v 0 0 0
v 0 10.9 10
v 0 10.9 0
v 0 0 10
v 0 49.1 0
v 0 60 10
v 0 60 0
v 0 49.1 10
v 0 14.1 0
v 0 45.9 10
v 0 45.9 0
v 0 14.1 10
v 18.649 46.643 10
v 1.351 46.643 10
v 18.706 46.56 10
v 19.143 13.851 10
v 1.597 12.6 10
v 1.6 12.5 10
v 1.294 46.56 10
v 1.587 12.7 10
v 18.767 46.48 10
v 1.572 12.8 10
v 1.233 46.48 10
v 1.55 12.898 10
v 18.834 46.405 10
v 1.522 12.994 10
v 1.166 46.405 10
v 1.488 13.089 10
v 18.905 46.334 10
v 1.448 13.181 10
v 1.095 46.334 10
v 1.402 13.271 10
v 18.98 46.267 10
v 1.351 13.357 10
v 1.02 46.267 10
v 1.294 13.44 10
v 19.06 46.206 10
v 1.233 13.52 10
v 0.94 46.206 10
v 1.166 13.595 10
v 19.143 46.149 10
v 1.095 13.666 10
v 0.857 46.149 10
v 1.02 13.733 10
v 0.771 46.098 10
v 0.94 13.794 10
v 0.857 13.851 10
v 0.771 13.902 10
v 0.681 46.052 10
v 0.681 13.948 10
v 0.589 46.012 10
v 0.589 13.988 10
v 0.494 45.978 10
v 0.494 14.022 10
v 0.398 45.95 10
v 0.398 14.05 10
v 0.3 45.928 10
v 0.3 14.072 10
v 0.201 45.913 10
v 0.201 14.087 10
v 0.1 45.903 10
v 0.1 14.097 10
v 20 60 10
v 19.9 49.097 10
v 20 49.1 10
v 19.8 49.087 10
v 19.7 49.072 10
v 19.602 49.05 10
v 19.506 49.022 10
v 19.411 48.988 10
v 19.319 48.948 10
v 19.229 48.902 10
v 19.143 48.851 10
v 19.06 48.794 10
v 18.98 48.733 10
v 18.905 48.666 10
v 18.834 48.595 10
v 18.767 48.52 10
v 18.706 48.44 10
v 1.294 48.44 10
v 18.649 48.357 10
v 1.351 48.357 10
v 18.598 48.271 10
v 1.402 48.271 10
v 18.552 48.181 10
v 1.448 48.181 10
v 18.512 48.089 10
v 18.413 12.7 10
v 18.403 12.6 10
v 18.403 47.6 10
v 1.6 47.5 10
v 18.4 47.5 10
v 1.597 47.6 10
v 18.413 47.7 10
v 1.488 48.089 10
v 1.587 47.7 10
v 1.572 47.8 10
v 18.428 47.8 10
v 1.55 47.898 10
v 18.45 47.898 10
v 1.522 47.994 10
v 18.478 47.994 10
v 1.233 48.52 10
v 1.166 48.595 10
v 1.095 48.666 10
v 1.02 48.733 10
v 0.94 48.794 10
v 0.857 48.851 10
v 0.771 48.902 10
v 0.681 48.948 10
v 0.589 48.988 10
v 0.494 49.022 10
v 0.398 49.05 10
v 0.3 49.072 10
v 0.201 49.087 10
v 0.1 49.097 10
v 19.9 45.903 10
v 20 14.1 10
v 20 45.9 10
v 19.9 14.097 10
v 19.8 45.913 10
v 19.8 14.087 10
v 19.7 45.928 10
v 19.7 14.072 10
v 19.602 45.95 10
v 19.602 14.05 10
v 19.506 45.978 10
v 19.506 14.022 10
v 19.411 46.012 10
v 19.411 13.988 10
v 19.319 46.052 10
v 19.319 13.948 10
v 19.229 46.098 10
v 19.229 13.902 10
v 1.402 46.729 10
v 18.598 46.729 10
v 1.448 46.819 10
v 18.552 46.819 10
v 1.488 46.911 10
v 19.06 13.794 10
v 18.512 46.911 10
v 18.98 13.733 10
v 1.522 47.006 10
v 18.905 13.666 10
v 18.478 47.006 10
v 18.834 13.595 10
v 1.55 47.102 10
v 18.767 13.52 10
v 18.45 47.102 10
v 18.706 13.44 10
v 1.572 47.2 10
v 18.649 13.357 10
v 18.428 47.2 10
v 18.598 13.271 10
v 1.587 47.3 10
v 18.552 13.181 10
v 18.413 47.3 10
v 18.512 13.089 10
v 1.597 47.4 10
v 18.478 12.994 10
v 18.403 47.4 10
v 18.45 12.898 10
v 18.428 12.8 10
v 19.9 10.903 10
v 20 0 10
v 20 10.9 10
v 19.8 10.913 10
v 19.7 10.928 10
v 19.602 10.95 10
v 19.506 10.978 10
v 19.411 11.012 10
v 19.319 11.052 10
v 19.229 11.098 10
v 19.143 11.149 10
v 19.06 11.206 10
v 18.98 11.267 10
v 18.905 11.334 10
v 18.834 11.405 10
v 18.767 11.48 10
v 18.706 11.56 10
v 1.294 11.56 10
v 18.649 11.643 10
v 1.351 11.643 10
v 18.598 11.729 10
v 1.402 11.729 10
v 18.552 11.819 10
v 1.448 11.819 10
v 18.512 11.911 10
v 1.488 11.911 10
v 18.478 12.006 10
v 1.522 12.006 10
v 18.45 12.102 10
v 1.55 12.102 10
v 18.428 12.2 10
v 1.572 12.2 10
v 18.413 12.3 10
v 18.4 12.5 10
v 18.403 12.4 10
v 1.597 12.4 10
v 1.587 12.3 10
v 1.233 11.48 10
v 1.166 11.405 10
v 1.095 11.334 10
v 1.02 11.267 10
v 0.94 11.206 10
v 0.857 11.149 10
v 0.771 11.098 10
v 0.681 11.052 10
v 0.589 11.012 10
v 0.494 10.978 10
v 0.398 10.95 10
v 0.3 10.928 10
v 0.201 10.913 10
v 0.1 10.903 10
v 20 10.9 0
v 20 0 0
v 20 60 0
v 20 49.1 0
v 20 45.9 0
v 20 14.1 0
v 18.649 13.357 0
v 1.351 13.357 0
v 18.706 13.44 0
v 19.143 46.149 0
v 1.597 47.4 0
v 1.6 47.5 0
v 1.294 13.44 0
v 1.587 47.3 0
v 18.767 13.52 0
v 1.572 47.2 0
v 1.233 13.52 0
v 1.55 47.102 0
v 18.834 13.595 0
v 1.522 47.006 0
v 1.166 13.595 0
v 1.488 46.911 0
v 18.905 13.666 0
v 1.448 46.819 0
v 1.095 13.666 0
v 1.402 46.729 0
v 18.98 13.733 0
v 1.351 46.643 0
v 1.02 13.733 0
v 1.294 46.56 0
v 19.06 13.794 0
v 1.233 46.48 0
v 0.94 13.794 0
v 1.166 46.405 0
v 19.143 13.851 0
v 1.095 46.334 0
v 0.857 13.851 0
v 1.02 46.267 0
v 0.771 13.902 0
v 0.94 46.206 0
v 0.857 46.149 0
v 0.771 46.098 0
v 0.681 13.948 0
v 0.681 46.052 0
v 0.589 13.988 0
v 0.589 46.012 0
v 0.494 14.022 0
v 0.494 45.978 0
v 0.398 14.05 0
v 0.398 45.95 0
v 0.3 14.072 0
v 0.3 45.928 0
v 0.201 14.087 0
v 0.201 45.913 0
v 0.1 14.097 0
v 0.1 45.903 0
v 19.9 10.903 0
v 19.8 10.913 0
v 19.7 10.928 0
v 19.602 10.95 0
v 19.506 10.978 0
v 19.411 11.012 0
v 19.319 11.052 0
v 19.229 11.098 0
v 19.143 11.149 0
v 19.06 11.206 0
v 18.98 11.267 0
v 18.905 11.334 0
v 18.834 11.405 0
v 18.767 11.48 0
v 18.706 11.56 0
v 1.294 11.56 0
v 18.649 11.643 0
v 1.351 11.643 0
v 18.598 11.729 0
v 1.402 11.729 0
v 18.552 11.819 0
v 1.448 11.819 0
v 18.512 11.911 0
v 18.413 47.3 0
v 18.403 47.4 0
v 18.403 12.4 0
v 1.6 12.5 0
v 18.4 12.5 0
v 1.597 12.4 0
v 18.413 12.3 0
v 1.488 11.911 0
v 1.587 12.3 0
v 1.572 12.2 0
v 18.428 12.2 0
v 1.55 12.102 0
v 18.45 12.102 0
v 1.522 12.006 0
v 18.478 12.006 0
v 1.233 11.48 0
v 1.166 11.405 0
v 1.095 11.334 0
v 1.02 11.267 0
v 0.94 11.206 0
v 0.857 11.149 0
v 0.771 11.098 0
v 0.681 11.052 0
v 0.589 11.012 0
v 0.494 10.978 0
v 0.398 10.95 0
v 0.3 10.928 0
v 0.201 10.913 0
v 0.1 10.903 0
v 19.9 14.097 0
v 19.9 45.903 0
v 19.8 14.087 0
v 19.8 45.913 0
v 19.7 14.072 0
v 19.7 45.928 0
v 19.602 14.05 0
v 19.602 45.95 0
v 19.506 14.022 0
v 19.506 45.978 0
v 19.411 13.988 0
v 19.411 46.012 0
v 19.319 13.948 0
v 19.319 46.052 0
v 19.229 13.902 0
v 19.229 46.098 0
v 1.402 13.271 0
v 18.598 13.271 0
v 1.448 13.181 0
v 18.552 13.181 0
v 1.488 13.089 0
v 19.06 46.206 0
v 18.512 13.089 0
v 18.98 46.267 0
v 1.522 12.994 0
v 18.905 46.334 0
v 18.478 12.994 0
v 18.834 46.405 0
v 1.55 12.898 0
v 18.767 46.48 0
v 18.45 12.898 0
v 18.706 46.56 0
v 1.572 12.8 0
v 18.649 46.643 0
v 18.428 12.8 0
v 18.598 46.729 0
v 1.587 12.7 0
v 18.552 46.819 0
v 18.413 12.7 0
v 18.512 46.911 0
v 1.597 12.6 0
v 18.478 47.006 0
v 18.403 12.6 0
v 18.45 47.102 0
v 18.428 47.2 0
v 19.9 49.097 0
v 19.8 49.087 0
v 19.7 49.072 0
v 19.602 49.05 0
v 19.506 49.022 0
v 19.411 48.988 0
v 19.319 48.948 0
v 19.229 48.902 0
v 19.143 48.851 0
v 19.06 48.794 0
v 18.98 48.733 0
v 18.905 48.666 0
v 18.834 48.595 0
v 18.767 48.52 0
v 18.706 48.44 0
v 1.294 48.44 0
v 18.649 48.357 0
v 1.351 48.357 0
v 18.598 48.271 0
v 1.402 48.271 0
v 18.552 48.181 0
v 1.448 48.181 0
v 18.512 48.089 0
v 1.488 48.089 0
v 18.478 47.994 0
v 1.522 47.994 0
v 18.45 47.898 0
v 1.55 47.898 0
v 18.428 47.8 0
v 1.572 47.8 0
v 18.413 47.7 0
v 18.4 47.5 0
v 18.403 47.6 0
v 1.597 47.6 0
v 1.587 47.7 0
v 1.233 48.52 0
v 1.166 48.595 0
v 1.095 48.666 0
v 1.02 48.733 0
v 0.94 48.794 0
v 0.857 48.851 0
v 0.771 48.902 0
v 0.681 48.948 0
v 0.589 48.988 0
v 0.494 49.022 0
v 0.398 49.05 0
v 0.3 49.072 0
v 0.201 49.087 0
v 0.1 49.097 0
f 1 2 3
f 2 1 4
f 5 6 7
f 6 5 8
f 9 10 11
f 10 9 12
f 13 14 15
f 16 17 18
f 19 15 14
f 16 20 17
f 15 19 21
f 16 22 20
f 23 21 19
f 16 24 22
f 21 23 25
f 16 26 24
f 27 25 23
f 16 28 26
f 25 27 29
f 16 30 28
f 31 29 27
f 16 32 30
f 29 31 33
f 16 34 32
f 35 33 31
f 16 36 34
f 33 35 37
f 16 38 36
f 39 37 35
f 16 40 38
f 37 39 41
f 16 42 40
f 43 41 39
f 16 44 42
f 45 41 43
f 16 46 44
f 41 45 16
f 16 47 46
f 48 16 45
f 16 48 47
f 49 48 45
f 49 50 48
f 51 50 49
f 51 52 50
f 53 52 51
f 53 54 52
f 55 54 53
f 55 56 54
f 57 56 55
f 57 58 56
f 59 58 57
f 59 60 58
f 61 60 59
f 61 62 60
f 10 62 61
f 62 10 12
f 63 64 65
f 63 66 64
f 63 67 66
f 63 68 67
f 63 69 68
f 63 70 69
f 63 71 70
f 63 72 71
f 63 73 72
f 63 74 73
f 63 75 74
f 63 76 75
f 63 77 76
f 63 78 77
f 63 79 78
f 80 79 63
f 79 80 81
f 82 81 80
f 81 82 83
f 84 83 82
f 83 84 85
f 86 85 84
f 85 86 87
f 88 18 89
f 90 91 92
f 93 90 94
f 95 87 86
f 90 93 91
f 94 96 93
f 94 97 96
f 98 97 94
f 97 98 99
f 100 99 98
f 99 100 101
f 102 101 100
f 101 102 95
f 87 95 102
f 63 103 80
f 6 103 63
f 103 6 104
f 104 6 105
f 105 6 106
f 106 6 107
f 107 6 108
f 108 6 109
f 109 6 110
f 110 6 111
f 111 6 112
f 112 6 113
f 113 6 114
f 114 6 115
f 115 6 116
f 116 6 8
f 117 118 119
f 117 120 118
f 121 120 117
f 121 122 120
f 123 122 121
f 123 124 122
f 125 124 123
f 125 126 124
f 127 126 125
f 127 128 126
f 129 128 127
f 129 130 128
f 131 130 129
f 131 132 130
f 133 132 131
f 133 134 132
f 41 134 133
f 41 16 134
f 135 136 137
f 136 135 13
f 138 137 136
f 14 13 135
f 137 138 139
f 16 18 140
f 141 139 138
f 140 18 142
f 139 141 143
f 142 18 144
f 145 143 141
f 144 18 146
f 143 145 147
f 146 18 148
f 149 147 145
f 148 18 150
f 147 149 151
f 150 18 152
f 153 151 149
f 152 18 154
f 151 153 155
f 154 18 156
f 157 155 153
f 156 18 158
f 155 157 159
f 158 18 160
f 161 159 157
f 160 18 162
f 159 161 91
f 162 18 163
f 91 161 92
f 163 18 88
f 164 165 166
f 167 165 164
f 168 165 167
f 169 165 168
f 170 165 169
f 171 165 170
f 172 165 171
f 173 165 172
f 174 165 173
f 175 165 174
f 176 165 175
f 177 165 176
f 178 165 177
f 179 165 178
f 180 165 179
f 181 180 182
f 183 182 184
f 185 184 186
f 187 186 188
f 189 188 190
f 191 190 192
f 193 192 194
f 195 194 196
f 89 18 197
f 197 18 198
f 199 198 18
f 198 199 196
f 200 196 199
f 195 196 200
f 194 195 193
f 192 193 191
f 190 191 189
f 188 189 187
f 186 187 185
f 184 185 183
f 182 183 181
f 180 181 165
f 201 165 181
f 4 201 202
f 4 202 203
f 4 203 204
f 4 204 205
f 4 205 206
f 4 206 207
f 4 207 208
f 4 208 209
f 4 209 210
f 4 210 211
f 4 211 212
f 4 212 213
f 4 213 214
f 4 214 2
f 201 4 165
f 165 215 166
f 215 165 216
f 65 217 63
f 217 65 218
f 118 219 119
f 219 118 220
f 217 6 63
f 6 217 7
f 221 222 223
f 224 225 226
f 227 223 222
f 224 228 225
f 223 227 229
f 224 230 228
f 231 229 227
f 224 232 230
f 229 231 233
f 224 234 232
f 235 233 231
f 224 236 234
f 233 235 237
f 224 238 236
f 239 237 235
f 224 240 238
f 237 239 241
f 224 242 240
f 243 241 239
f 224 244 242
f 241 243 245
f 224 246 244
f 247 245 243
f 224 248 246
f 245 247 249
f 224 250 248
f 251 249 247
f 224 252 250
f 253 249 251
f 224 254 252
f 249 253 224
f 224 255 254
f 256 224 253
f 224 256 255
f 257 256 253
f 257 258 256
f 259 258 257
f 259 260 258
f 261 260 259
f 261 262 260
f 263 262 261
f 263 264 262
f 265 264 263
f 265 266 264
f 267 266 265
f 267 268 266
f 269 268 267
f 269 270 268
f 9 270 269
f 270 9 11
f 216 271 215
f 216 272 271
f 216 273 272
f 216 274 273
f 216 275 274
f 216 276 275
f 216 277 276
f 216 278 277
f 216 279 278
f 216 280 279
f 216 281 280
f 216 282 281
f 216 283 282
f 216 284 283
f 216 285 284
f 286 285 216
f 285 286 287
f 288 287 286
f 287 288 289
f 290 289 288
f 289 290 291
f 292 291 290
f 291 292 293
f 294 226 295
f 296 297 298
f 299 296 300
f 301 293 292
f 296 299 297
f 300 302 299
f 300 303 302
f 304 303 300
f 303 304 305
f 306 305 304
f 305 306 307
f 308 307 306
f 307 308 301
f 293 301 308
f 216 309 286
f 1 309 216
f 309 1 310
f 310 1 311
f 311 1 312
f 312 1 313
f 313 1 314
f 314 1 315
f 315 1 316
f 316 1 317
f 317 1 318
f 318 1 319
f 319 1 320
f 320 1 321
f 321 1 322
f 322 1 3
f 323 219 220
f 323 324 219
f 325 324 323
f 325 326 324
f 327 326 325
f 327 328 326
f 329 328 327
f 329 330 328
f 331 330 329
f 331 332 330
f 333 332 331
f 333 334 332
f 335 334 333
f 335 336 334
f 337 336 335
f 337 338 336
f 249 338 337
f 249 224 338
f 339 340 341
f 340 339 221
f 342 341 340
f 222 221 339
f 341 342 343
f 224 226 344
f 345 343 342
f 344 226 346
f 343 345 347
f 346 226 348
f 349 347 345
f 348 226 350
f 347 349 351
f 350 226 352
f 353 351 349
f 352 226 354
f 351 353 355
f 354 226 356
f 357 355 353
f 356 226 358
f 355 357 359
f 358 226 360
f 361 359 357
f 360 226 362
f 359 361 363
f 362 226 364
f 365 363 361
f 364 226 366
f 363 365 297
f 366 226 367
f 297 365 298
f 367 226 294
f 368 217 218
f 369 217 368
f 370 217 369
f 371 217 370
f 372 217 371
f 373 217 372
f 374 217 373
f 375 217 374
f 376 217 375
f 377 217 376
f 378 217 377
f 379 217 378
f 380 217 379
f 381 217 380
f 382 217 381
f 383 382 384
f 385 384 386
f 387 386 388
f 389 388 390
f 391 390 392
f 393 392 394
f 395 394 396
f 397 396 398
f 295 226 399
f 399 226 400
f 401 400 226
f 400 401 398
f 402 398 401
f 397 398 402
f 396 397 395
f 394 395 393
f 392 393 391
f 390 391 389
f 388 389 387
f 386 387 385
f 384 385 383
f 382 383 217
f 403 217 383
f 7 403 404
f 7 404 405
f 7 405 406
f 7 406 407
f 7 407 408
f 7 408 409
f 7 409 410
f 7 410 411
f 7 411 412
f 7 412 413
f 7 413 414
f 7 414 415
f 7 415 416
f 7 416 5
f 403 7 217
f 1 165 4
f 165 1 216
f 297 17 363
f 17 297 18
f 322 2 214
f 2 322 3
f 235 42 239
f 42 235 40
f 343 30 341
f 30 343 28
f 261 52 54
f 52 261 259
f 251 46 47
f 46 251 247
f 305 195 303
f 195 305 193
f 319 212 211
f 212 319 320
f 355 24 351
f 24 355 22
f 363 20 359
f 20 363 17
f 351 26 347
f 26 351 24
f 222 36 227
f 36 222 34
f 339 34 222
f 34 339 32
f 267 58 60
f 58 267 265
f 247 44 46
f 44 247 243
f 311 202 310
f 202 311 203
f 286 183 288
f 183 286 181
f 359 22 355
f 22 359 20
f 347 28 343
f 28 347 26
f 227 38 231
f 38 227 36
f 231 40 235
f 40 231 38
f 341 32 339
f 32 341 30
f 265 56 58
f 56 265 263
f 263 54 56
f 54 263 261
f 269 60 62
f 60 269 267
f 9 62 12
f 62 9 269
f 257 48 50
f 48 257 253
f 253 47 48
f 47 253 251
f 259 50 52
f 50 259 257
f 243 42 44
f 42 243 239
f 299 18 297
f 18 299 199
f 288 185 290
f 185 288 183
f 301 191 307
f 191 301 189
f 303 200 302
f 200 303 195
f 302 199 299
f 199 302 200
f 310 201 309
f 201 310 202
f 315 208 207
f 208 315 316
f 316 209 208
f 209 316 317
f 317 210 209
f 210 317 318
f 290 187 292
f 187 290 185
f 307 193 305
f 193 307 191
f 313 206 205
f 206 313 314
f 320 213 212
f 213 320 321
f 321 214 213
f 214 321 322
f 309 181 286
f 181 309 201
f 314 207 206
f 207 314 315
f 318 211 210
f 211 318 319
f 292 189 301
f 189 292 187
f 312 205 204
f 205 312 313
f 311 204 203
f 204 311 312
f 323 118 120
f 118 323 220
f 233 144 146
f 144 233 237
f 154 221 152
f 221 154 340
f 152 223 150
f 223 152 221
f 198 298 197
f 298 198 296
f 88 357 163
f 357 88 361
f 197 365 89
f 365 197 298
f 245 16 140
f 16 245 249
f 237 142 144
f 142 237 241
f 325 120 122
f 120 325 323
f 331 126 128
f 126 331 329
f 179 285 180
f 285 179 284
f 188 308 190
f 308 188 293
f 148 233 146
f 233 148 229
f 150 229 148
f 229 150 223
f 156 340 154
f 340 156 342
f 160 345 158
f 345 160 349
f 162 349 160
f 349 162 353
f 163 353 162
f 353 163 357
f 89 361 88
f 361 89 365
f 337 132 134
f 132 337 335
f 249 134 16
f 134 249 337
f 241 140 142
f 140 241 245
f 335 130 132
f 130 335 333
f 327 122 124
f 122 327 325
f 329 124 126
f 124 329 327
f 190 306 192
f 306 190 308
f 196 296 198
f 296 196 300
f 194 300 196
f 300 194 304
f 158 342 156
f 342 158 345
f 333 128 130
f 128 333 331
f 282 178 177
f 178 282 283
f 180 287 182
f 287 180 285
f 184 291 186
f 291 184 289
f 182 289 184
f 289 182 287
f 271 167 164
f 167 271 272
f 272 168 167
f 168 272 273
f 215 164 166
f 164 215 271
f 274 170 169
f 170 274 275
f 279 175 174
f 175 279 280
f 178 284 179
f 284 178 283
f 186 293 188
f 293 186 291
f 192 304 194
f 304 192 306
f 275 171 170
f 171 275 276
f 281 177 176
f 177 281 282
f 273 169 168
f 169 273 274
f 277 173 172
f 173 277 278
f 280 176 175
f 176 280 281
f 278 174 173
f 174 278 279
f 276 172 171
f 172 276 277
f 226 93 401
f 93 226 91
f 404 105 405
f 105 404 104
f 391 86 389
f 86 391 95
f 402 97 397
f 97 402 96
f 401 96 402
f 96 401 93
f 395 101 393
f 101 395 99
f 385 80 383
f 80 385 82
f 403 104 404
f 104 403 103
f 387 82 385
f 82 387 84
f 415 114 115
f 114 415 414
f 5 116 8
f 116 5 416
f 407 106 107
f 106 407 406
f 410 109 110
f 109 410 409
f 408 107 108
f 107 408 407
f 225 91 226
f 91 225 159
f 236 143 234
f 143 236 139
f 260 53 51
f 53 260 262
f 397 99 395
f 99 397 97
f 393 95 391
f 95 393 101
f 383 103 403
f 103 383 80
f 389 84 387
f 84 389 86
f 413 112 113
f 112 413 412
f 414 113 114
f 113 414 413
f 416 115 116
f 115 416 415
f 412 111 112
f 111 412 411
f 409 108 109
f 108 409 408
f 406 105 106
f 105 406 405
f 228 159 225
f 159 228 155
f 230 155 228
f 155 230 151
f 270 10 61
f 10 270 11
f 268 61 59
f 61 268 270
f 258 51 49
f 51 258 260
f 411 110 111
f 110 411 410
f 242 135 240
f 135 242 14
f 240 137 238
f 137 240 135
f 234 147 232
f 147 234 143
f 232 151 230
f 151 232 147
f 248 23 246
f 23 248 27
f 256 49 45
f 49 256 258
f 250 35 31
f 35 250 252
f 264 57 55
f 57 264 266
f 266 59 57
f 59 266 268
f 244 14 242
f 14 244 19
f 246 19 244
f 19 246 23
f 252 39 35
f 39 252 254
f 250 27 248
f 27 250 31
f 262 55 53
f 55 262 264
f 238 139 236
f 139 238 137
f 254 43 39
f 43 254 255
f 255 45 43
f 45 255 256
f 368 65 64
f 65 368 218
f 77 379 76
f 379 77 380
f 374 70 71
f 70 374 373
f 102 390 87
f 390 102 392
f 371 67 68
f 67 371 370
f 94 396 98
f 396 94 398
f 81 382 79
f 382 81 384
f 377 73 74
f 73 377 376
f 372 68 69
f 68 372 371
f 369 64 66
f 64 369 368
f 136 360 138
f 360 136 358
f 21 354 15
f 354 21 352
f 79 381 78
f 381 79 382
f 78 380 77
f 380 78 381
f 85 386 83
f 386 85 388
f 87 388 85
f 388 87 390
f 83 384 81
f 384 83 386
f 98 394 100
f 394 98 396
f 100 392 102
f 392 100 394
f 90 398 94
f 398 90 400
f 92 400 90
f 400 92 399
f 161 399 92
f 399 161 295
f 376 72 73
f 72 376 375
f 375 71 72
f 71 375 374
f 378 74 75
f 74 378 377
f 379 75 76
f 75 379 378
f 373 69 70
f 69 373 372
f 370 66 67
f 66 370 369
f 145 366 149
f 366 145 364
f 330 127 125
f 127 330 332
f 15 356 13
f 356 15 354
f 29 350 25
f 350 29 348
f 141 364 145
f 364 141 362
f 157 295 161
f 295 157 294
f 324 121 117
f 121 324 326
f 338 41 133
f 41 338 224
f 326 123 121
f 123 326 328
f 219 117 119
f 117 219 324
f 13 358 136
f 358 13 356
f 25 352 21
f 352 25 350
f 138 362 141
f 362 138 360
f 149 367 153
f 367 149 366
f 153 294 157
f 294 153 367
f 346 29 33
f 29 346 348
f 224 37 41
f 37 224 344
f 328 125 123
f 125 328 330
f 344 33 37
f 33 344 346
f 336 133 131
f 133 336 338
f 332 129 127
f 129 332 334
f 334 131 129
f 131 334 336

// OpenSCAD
$fn=100;

difference(){
cube([20,60,10]);
        translate([0,12.5,0])cylinder(r=1.6,h=30);
    //translate([20,12.5,20])rotate([0,180,0])m3_hole();
    translate([20,12.5,0])cylinder(r=1.6,h=30);
    translate([0,47.5,0])cylinder(r=1.6,h=30);
    translate([20,47.5,0])cylinder(r=1.6,h=30);
}
